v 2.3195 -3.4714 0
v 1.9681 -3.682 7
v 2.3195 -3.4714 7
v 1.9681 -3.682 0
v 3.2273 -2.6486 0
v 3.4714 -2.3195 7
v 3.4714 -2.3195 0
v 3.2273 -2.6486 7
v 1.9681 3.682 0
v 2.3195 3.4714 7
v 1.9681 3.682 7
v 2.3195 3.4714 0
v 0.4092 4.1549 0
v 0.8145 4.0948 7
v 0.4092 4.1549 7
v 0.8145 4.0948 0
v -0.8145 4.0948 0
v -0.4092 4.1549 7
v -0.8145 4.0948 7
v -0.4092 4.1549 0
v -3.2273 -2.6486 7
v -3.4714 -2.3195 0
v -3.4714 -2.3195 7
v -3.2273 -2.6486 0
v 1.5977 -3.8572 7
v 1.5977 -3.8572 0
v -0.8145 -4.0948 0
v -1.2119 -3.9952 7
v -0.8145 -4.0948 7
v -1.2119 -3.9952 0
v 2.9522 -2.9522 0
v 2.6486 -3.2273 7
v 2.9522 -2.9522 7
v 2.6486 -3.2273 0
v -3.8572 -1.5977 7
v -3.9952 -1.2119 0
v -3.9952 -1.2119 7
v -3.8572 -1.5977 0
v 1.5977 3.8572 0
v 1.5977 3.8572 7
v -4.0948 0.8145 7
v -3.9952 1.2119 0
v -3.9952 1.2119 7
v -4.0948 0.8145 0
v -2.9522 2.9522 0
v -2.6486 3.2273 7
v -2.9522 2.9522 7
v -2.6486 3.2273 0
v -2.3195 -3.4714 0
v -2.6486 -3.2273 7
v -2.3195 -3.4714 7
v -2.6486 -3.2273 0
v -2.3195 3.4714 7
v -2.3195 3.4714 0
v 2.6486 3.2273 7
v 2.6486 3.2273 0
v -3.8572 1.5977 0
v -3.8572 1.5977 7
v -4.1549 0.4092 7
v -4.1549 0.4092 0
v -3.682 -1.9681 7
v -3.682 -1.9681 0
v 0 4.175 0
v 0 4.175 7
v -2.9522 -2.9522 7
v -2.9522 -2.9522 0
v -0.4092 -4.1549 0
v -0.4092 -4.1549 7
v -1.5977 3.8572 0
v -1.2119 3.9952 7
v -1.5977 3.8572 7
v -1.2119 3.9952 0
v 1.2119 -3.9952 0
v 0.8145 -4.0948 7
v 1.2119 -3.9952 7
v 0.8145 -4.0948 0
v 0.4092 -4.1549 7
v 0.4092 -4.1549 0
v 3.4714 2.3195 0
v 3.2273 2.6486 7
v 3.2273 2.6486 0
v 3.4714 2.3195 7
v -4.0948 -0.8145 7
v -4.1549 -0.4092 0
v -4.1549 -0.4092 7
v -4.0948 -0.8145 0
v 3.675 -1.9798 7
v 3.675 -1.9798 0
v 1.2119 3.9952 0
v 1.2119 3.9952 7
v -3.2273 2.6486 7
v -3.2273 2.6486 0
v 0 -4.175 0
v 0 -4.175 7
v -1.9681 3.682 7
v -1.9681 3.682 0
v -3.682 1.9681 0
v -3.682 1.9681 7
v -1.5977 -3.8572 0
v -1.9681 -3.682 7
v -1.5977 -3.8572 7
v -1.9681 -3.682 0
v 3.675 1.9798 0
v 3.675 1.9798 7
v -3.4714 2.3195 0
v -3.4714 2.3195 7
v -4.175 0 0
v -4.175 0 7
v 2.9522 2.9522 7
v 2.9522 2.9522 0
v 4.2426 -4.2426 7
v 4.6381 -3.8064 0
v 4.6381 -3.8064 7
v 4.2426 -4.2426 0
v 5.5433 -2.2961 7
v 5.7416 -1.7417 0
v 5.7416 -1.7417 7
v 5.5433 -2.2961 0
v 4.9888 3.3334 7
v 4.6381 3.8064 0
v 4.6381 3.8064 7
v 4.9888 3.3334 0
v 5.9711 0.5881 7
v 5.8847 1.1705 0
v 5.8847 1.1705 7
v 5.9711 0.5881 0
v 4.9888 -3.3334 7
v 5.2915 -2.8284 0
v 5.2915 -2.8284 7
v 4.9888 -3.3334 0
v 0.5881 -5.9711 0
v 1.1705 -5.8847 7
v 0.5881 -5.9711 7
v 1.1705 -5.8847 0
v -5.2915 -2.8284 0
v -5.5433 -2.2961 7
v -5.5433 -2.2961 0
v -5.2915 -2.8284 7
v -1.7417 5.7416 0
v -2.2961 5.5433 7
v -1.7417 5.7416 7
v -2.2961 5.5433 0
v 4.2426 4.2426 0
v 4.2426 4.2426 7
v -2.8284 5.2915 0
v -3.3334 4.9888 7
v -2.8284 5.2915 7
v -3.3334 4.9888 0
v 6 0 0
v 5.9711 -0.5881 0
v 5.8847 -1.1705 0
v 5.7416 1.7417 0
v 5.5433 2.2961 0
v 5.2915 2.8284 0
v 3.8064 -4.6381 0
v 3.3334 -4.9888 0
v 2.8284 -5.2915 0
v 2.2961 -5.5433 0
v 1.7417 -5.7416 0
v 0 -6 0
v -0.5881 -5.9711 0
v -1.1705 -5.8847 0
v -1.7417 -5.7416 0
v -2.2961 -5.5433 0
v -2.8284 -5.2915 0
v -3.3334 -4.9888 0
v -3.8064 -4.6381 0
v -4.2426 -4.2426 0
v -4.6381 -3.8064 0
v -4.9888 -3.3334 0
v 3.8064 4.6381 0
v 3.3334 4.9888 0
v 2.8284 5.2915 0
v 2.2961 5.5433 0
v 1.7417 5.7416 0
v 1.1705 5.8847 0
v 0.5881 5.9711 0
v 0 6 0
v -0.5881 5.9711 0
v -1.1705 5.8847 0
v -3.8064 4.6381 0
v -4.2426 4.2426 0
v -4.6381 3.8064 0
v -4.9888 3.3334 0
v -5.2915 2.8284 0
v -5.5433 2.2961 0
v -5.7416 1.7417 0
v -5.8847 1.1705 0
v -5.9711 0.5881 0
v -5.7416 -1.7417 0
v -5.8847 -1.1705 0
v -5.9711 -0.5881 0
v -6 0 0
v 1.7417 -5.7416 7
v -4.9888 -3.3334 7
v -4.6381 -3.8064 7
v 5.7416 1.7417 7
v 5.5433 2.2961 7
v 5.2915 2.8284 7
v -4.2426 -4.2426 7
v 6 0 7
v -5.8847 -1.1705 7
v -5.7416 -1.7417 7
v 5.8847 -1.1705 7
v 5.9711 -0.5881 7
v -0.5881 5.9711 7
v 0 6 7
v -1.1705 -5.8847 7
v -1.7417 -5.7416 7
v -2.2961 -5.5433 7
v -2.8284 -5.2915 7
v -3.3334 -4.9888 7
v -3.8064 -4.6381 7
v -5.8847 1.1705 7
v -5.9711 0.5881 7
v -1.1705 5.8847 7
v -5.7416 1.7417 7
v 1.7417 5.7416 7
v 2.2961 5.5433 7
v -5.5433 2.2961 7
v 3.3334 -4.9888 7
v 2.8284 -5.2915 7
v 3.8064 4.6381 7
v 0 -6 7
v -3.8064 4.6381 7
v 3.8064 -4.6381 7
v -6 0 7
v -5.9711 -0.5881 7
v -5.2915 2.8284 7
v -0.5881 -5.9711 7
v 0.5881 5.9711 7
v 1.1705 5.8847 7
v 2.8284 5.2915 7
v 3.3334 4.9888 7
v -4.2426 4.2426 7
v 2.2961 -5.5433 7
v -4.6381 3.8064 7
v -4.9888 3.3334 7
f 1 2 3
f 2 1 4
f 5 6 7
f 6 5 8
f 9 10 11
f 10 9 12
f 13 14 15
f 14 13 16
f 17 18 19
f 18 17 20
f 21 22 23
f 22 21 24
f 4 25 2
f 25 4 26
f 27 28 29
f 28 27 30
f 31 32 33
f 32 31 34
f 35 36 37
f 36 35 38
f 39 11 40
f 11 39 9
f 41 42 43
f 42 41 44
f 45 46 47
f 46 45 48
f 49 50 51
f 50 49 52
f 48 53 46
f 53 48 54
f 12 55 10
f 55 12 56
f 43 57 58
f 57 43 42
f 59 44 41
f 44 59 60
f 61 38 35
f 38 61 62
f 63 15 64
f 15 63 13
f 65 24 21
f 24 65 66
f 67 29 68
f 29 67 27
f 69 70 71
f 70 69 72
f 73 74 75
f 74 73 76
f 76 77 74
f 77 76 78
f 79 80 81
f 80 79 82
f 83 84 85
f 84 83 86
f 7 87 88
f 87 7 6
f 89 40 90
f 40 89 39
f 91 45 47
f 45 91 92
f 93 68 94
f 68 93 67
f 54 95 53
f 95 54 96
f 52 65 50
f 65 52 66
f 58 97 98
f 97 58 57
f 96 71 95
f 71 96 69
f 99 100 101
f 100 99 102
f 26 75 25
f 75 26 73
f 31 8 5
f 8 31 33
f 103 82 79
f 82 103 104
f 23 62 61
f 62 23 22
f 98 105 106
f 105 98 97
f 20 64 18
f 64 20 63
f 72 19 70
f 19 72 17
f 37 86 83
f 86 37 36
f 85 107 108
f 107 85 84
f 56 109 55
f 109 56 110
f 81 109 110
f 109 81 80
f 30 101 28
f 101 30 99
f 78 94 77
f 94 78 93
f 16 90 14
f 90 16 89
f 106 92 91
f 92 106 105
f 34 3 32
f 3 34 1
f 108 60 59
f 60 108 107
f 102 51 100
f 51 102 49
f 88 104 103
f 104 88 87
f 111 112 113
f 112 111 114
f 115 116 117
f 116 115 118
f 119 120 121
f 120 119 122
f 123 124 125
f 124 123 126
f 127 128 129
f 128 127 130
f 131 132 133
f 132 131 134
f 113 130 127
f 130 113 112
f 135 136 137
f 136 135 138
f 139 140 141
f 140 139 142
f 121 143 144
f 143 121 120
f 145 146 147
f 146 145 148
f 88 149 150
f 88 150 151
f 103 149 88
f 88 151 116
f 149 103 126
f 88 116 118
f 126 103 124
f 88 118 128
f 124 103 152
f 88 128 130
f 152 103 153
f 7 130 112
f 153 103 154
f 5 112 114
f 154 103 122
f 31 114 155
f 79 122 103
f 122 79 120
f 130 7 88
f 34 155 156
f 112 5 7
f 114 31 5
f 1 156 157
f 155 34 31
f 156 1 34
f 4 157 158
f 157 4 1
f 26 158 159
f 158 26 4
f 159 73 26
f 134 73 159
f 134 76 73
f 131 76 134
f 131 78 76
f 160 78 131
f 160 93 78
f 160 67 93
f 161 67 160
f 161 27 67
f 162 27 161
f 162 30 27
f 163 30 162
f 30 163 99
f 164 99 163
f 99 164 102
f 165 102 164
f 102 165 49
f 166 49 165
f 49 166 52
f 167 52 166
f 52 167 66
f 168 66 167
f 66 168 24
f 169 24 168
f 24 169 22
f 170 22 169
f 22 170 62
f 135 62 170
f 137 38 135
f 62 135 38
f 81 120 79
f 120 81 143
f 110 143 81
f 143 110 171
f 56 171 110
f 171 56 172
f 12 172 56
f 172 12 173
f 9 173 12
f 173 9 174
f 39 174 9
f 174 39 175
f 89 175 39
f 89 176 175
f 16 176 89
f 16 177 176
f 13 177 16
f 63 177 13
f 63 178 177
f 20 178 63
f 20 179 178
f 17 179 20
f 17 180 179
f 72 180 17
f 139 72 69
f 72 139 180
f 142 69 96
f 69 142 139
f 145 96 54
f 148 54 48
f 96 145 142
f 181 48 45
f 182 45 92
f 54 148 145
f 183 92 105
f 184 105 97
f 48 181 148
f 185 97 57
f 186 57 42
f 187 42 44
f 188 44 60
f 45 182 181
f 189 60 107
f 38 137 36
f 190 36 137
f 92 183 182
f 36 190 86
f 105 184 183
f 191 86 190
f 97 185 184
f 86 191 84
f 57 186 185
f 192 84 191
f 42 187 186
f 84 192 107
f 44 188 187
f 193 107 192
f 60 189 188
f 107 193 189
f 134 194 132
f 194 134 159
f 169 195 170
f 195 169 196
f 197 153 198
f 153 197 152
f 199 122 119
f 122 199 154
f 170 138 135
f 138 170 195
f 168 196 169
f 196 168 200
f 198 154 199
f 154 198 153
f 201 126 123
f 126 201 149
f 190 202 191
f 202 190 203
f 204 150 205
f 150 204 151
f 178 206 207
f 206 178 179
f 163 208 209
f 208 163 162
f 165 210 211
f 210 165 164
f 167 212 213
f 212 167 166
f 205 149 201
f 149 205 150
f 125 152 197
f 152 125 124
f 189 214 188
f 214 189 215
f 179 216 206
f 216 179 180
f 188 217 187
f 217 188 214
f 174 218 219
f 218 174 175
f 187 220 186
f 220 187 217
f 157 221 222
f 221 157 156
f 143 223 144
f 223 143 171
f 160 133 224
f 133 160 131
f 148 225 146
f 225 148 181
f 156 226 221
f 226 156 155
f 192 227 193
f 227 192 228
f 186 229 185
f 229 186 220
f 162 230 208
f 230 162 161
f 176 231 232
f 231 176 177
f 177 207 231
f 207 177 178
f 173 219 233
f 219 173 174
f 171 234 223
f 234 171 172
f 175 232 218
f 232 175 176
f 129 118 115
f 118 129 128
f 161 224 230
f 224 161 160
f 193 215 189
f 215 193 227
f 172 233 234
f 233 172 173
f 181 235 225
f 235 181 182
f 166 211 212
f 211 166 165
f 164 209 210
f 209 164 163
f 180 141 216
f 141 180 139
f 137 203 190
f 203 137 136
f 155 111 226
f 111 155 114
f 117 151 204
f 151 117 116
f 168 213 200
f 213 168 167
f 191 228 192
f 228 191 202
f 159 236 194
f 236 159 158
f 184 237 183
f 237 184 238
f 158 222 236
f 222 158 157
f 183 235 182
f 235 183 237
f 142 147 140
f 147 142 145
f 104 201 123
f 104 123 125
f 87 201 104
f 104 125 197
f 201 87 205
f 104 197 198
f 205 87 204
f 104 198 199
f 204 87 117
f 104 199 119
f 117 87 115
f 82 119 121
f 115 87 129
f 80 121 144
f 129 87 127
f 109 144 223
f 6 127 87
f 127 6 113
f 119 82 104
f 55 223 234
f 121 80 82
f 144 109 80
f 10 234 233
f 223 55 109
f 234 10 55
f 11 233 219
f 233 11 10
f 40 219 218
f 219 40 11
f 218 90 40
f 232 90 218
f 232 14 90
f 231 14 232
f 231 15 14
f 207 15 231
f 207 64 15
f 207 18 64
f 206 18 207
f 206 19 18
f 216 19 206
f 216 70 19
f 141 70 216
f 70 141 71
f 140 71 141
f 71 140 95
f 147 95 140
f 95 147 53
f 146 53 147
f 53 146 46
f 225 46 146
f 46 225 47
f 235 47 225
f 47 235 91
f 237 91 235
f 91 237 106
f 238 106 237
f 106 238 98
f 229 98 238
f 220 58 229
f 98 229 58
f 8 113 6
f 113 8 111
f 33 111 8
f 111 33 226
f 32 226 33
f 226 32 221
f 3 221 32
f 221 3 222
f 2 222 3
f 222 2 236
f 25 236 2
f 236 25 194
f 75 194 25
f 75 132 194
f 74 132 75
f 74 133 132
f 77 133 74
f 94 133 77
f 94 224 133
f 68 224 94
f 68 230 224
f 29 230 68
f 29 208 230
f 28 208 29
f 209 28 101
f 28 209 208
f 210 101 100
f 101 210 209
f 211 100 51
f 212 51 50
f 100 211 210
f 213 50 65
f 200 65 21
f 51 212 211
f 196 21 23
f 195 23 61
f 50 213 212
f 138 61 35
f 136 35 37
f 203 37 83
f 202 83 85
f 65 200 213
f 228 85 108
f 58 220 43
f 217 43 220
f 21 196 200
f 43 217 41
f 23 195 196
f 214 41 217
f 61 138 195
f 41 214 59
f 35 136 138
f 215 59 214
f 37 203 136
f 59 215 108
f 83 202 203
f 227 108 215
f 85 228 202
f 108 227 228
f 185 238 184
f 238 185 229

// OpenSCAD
// Gen-DM — gap sleeve: rigid spacer on the shaft BETWEEN the two rotor carriers (passes through the stator
// hole). Length = m2m, so it sets the magnet gap and carries the full magnet pull. Print x1, upright.
include <parameters.scad>;
$fn = 64;
// D-flat keyed bore: flat faces +X (angle 0 = magnet pocket 0 = index notch)
module dflat_bore(h) {
    intersection() {
        cylinder(d=shaft_bore, h=h);
        translate([-shaft_bore, -shaft_bore, 0]) cube([shaft_bore + dflat_x, 2*shaft_bore, h]);
    }
}

difference() {
    cylinder(d=sleeve_od, h=m2m);
    translate([0, 0, -0.1]) dflat_bore(m2m + 0.2);
}
